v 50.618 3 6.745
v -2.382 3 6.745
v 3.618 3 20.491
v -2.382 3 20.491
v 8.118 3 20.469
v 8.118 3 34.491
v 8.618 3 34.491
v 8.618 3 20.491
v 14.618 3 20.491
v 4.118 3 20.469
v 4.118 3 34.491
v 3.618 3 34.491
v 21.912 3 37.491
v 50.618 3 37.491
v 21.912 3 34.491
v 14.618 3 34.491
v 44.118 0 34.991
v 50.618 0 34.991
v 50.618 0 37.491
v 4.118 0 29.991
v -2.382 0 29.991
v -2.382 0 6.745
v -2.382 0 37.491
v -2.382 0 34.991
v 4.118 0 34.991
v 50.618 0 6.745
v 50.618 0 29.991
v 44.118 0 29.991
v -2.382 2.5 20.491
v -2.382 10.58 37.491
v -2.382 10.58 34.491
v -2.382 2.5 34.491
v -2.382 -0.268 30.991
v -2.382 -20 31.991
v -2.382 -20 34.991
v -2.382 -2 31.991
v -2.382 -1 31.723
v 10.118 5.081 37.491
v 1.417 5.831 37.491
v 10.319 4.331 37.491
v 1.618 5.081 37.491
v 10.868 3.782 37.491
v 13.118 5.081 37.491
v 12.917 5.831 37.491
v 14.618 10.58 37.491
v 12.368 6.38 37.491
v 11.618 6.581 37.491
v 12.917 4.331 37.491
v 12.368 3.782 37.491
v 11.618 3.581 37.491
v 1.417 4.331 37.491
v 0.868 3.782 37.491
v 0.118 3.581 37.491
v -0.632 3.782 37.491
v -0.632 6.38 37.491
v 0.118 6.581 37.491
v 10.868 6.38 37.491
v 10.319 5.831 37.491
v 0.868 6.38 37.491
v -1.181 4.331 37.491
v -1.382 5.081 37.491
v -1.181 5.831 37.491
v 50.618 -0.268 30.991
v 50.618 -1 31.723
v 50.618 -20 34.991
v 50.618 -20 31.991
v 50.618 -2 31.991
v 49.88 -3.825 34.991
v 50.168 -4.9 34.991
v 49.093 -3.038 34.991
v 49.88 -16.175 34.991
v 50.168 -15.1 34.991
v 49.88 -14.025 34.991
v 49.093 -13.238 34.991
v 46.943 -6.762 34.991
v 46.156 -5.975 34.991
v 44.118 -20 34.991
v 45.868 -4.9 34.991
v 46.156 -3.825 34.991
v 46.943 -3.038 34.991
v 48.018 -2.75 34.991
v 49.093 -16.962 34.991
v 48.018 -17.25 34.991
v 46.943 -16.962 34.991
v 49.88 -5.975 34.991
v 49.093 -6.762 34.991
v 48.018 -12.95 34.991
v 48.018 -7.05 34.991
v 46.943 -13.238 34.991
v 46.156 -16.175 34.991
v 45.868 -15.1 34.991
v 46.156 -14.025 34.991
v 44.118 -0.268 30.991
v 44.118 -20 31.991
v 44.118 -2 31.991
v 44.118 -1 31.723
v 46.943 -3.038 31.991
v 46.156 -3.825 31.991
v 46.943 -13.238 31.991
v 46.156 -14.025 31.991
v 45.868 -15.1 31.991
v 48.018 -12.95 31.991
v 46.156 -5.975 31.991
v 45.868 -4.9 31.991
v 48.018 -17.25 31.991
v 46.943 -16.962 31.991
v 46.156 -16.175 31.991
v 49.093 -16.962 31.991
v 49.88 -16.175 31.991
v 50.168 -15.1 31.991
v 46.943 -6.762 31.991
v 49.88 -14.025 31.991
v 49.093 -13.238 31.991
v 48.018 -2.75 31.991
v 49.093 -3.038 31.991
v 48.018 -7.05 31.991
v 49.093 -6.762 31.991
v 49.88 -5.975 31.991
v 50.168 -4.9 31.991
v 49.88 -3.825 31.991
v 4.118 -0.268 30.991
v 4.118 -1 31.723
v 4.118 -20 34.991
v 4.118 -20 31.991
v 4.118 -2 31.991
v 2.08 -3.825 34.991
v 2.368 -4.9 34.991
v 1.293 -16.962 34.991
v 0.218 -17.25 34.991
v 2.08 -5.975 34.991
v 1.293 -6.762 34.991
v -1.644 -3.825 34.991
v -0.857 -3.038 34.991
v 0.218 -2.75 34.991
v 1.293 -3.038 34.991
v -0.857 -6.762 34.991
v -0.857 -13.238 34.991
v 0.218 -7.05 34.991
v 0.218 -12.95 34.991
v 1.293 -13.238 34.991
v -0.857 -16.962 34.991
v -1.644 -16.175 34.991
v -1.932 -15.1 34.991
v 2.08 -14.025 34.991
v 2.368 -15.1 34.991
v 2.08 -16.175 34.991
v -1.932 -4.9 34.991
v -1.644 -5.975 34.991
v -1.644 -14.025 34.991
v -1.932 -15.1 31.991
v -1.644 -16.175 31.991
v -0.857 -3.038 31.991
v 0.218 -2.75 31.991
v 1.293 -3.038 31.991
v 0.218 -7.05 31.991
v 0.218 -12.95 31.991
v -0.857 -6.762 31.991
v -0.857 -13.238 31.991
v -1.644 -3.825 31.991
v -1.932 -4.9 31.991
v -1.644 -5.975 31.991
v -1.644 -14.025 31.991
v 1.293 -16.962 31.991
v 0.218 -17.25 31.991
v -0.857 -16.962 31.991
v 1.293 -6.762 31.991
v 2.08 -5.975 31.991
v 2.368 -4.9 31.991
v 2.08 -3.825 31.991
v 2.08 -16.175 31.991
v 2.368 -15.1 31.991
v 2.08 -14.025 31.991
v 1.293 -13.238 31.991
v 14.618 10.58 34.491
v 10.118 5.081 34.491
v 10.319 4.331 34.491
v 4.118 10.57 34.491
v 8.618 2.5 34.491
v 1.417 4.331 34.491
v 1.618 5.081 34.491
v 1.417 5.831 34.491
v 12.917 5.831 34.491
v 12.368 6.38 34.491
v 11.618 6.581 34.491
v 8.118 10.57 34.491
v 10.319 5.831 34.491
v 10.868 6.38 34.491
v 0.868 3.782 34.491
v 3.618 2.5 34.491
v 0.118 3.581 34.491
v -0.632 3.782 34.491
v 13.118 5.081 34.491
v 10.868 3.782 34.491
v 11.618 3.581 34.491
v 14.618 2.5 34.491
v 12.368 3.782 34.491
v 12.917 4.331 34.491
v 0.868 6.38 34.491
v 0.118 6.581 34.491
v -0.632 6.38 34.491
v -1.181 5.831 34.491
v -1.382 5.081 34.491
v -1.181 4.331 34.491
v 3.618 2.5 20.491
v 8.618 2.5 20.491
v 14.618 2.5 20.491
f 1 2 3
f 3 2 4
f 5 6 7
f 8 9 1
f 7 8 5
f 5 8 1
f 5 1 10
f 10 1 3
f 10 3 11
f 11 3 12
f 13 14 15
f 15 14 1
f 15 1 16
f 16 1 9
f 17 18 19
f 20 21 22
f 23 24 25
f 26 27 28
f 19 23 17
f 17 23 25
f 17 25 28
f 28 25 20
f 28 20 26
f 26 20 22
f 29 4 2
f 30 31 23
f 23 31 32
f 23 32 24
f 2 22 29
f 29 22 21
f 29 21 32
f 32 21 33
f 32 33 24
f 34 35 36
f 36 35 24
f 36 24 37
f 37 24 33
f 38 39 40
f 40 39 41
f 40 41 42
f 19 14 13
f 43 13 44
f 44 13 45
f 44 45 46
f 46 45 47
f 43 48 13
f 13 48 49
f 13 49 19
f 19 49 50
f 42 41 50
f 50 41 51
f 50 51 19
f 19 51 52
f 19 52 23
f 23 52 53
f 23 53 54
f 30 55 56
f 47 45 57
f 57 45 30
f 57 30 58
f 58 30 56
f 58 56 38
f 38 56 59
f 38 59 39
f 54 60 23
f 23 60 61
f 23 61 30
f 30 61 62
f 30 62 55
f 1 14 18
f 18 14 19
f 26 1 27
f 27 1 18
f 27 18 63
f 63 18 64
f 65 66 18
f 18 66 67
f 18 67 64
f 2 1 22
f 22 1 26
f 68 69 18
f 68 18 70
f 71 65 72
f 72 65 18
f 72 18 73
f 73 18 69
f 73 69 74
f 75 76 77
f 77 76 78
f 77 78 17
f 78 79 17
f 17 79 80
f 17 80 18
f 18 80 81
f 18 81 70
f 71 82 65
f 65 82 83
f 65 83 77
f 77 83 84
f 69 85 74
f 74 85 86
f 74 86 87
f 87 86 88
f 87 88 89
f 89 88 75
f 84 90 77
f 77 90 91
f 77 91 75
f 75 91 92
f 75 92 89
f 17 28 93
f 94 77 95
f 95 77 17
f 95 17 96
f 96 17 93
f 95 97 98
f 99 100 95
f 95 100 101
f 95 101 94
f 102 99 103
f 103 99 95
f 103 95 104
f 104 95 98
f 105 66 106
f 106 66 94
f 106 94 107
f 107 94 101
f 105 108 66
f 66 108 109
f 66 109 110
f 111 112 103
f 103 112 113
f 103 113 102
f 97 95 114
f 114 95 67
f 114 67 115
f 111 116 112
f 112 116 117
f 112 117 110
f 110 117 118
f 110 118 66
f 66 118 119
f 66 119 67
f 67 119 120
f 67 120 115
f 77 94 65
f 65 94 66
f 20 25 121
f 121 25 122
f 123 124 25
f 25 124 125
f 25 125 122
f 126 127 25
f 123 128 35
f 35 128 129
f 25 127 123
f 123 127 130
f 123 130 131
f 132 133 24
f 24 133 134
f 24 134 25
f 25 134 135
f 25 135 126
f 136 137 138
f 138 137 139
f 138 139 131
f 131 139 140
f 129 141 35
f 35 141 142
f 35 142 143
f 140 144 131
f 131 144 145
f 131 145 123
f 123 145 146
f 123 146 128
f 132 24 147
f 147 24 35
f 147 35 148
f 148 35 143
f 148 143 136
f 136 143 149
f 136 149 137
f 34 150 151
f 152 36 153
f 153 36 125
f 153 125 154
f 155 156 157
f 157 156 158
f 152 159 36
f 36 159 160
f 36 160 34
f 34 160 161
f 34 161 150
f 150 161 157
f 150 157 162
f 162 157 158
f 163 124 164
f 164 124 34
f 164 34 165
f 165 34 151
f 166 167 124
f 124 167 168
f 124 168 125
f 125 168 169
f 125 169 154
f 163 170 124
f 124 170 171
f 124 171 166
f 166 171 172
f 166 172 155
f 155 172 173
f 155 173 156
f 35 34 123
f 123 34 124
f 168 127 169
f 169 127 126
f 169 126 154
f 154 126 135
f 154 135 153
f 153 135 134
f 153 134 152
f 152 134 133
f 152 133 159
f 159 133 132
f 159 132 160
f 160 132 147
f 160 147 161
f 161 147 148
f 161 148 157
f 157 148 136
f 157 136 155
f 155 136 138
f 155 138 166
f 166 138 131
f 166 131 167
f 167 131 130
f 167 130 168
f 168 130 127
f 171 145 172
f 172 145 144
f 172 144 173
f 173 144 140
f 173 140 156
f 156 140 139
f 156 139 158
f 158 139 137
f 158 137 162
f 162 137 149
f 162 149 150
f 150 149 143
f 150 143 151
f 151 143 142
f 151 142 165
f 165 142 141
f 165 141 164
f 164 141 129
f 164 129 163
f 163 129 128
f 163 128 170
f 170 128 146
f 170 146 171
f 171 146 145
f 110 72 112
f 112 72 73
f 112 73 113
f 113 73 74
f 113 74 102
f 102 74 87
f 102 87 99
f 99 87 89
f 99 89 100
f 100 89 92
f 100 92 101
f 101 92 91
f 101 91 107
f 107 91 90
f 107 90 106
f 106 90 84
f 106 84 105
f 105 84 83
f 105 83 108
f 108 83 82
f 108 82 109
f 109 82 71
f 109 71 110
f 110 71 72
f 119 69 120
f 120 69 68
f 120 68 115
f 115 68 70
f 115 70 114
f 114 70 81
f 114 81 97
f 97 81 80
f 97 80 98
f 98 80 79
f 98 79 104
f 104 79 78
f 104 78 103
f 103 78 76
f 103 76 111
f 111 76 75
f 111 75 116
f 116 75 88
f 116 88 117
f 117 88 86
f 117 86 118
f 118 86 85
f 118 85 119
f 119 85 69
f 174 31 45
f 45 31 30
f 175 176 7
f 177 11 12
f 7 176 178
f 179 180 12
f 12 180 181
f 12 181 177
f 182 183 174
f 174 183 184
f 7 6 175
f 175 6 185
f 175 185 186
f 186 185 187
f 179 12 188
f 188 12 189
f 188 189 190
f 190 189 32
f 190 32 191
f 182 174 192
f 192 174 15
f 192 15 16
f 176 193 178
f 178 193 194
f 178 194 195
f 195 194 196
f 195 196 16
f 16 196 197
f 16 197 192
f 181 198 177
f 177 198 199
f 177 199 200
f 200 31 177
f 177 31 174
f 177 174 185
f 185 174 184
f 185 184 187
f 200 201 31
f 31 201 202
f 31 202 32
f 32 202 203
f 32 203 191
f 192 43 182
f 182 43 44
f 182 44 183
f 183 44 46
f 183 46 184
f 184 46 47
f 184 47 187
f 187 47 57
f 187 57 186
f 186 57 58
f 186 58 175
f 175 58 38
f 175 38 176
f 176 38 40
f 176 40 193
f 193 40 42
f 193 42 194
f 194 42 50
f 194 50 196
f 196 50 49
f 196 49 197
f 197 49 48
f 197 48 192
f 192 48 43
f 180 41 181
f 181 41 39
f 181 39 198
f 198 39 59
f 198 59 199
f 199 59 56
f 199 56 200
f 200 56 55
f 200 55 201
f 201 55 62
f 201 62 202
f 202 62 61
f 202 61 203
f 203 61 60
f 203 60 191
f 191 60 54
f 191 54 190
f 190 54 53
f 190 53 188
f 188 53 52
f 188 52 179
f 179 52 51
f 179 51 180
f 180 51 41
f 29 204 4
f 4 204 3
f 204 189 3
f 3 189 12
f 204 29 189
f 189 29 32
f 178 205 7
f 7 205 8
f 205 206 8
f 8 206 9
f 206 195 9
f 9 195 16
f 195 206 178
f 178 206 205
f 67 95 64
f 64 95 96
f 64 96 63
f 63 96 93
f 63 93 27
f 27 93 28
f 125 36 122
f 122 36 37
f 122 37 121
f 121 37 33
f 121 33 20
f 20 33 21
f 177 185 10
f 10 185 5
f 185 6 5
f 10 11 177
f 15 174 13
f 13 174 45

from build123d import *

# Parameters (mm, degrees)
SKETCH1_W                = 53
SKETCH1_H                = 30.745586227
BOSS_EXTRUDE1_DEPTH      = 3
SKETCH2_W                = 6.5
SKETCH2_H                = 3
BOSS_EXTRUDE2_DEPTH      = 20
SKETCH3_R                = 2.15
CUT_EXTRUDE1_DEPTH       = 3
SKETCH6_W                = 17
SKETCH6_H                = 7.58
BOSS_EXTRUDE3_DEPTH      = 3
SKETCH7_R                = 1.5
CUT_EXTRUDE2_DEPTH       = 7.5
SKETCH8_W                = 6
SKETCH8_H                = 14
CUT_EXTRUDE3_DEPTH       = 0.5
FILLET1_R                = 2
BOSS_EXTRUDE4_DEPTH      = 2
BOSS_EXTRUDE4_DEPTH_BACK = 2
BOSS_EXTRUDE5_DEPTH      = 3


with BuildPart() as part:
    # Sketch1 → Boss-Extrude1 (new body)
    with BuildSketch(Plane(origin=(0, 0, 0), x_dir=(1, 0, 0), z_dir=(0, 1, 0))):
        with Locations((24.118089155, -22.118099476)):
            Rectangle(SKETCH1_W, SKETCH1_H)
    extrude(amount=BOSS_EXTRUDE1_DEPTH)

    # Sketch2 → Boss-Extrude2 (add)
    with BuildSketch(Plane.XZ):
        with Locations((47.368089155, 33.49089259)):
            Rectangle(SKETCH2_W, SKETCH2_H)
        with Locations((0.868089155, 33.49089259)):
            Rectangle(SKETCH2_W, SKETCH2_H)
    extrude(amount=BOSS_EXTRUDE2_DEPTH)

    # Sketch3 → Cut-Extrude1 (cut)
    with BuildSketch(Plane.XY.offset(34.99089259)):
        with Locations((48.018089155, -15.1)):
            Circle(SKETCH3_R)
        with Locations((48.018089155, -4.9)):
            Circle(SKETCH3_R)
        with Locations((0.218089155, -15.1)):
            Circle(SKETCH3_R)
        with Locations((0.218089155, -4.9)):
            Circle(SKETCH3_R)
    extrude(amount=-CUT_EXTRUDE1_DEPTH, mode=Mode.SUBTRACT)

    # Sketch6 → Boss-Extrude3 (add)
    with BuildSketch(Plane.XY.offset(37.49089259)):
        with Locations((6.118089155, 6.79)):
            Rectangle(SKETCH6_W, SKETCH6_H)
    extrude(amount=-BOSS_EXTRUDE3_DEPTH)

    # Sketch7 → Cut-Extrude2 (cut)
    with BuildSketch(Plane.XY.offset(37.49089259)):
        with Locations((0.118089155, 5.081241932)):
            Circle(SKETCH7_R)
        with Locations((11.618089155, 5.081241932)):
            Circle(SKETCH7_R)
    extrude(amount=-CUT_EXTRUDE2_DEPTH, mode=Mode.SUBTRACT)

    # Sketch8 → Cut-Extrude3 (cut)
    with BuildSketch(Plane(origin=(0, 3, 0), x_dir=(1, 0, 0), z_dir=(0, 1, 0))):
        with Locations((11.618089155, -27.49089259)):
            Rectangle(SKETCH8_W, SKETCH8_H)
        with Locations((0.618089155, -27.49089259)):
            Rectangle(SKETCH8_W, SKETCH8_H)
    extrude(amount=-CUT_EXTRUDE3_DEPTH, mode=Mode.SUBTRACT)

    # Fillet1
    fillet1_edges = [part.edges().sort_by_distance(p)[0] for p in [
        (47.368089155, 0, 31.99089259),
        (0.868089155, 0, 31.99089259),
    ]]
    fillet(fillet1_edges, radius=FILLET1_R)

    # Sketch13 → Boss-Extrude4 (add, two sides: drawn at the far end of the back side and taken through both)
    with BuildSketch(Plane.ZY.offset(-6.118089155).offset(-BOSS_EXTRUDE4_DEPTH_BACK)):
        Polygon((34.49089259, 10.57033397), (34.49089259, 3), (20.468920989, 3), align=None)
    extrude(amount=BOSS_EXTRUDE4_DEPTH + BOSS_EXTRUDE4_DEPTH_BACK)

    # Sketch14 → Boss-Extrude5 (add)
    with BuildSketch(Plane.XY.offset(37.49089259)):
        Polygon((14.618089155, 3), (14.618089155, 10.58), (21.91210821, 3), align=None)
    extrude(amount=-BOSS_EXTRUDE5_DEPTH)


solid = part.part
